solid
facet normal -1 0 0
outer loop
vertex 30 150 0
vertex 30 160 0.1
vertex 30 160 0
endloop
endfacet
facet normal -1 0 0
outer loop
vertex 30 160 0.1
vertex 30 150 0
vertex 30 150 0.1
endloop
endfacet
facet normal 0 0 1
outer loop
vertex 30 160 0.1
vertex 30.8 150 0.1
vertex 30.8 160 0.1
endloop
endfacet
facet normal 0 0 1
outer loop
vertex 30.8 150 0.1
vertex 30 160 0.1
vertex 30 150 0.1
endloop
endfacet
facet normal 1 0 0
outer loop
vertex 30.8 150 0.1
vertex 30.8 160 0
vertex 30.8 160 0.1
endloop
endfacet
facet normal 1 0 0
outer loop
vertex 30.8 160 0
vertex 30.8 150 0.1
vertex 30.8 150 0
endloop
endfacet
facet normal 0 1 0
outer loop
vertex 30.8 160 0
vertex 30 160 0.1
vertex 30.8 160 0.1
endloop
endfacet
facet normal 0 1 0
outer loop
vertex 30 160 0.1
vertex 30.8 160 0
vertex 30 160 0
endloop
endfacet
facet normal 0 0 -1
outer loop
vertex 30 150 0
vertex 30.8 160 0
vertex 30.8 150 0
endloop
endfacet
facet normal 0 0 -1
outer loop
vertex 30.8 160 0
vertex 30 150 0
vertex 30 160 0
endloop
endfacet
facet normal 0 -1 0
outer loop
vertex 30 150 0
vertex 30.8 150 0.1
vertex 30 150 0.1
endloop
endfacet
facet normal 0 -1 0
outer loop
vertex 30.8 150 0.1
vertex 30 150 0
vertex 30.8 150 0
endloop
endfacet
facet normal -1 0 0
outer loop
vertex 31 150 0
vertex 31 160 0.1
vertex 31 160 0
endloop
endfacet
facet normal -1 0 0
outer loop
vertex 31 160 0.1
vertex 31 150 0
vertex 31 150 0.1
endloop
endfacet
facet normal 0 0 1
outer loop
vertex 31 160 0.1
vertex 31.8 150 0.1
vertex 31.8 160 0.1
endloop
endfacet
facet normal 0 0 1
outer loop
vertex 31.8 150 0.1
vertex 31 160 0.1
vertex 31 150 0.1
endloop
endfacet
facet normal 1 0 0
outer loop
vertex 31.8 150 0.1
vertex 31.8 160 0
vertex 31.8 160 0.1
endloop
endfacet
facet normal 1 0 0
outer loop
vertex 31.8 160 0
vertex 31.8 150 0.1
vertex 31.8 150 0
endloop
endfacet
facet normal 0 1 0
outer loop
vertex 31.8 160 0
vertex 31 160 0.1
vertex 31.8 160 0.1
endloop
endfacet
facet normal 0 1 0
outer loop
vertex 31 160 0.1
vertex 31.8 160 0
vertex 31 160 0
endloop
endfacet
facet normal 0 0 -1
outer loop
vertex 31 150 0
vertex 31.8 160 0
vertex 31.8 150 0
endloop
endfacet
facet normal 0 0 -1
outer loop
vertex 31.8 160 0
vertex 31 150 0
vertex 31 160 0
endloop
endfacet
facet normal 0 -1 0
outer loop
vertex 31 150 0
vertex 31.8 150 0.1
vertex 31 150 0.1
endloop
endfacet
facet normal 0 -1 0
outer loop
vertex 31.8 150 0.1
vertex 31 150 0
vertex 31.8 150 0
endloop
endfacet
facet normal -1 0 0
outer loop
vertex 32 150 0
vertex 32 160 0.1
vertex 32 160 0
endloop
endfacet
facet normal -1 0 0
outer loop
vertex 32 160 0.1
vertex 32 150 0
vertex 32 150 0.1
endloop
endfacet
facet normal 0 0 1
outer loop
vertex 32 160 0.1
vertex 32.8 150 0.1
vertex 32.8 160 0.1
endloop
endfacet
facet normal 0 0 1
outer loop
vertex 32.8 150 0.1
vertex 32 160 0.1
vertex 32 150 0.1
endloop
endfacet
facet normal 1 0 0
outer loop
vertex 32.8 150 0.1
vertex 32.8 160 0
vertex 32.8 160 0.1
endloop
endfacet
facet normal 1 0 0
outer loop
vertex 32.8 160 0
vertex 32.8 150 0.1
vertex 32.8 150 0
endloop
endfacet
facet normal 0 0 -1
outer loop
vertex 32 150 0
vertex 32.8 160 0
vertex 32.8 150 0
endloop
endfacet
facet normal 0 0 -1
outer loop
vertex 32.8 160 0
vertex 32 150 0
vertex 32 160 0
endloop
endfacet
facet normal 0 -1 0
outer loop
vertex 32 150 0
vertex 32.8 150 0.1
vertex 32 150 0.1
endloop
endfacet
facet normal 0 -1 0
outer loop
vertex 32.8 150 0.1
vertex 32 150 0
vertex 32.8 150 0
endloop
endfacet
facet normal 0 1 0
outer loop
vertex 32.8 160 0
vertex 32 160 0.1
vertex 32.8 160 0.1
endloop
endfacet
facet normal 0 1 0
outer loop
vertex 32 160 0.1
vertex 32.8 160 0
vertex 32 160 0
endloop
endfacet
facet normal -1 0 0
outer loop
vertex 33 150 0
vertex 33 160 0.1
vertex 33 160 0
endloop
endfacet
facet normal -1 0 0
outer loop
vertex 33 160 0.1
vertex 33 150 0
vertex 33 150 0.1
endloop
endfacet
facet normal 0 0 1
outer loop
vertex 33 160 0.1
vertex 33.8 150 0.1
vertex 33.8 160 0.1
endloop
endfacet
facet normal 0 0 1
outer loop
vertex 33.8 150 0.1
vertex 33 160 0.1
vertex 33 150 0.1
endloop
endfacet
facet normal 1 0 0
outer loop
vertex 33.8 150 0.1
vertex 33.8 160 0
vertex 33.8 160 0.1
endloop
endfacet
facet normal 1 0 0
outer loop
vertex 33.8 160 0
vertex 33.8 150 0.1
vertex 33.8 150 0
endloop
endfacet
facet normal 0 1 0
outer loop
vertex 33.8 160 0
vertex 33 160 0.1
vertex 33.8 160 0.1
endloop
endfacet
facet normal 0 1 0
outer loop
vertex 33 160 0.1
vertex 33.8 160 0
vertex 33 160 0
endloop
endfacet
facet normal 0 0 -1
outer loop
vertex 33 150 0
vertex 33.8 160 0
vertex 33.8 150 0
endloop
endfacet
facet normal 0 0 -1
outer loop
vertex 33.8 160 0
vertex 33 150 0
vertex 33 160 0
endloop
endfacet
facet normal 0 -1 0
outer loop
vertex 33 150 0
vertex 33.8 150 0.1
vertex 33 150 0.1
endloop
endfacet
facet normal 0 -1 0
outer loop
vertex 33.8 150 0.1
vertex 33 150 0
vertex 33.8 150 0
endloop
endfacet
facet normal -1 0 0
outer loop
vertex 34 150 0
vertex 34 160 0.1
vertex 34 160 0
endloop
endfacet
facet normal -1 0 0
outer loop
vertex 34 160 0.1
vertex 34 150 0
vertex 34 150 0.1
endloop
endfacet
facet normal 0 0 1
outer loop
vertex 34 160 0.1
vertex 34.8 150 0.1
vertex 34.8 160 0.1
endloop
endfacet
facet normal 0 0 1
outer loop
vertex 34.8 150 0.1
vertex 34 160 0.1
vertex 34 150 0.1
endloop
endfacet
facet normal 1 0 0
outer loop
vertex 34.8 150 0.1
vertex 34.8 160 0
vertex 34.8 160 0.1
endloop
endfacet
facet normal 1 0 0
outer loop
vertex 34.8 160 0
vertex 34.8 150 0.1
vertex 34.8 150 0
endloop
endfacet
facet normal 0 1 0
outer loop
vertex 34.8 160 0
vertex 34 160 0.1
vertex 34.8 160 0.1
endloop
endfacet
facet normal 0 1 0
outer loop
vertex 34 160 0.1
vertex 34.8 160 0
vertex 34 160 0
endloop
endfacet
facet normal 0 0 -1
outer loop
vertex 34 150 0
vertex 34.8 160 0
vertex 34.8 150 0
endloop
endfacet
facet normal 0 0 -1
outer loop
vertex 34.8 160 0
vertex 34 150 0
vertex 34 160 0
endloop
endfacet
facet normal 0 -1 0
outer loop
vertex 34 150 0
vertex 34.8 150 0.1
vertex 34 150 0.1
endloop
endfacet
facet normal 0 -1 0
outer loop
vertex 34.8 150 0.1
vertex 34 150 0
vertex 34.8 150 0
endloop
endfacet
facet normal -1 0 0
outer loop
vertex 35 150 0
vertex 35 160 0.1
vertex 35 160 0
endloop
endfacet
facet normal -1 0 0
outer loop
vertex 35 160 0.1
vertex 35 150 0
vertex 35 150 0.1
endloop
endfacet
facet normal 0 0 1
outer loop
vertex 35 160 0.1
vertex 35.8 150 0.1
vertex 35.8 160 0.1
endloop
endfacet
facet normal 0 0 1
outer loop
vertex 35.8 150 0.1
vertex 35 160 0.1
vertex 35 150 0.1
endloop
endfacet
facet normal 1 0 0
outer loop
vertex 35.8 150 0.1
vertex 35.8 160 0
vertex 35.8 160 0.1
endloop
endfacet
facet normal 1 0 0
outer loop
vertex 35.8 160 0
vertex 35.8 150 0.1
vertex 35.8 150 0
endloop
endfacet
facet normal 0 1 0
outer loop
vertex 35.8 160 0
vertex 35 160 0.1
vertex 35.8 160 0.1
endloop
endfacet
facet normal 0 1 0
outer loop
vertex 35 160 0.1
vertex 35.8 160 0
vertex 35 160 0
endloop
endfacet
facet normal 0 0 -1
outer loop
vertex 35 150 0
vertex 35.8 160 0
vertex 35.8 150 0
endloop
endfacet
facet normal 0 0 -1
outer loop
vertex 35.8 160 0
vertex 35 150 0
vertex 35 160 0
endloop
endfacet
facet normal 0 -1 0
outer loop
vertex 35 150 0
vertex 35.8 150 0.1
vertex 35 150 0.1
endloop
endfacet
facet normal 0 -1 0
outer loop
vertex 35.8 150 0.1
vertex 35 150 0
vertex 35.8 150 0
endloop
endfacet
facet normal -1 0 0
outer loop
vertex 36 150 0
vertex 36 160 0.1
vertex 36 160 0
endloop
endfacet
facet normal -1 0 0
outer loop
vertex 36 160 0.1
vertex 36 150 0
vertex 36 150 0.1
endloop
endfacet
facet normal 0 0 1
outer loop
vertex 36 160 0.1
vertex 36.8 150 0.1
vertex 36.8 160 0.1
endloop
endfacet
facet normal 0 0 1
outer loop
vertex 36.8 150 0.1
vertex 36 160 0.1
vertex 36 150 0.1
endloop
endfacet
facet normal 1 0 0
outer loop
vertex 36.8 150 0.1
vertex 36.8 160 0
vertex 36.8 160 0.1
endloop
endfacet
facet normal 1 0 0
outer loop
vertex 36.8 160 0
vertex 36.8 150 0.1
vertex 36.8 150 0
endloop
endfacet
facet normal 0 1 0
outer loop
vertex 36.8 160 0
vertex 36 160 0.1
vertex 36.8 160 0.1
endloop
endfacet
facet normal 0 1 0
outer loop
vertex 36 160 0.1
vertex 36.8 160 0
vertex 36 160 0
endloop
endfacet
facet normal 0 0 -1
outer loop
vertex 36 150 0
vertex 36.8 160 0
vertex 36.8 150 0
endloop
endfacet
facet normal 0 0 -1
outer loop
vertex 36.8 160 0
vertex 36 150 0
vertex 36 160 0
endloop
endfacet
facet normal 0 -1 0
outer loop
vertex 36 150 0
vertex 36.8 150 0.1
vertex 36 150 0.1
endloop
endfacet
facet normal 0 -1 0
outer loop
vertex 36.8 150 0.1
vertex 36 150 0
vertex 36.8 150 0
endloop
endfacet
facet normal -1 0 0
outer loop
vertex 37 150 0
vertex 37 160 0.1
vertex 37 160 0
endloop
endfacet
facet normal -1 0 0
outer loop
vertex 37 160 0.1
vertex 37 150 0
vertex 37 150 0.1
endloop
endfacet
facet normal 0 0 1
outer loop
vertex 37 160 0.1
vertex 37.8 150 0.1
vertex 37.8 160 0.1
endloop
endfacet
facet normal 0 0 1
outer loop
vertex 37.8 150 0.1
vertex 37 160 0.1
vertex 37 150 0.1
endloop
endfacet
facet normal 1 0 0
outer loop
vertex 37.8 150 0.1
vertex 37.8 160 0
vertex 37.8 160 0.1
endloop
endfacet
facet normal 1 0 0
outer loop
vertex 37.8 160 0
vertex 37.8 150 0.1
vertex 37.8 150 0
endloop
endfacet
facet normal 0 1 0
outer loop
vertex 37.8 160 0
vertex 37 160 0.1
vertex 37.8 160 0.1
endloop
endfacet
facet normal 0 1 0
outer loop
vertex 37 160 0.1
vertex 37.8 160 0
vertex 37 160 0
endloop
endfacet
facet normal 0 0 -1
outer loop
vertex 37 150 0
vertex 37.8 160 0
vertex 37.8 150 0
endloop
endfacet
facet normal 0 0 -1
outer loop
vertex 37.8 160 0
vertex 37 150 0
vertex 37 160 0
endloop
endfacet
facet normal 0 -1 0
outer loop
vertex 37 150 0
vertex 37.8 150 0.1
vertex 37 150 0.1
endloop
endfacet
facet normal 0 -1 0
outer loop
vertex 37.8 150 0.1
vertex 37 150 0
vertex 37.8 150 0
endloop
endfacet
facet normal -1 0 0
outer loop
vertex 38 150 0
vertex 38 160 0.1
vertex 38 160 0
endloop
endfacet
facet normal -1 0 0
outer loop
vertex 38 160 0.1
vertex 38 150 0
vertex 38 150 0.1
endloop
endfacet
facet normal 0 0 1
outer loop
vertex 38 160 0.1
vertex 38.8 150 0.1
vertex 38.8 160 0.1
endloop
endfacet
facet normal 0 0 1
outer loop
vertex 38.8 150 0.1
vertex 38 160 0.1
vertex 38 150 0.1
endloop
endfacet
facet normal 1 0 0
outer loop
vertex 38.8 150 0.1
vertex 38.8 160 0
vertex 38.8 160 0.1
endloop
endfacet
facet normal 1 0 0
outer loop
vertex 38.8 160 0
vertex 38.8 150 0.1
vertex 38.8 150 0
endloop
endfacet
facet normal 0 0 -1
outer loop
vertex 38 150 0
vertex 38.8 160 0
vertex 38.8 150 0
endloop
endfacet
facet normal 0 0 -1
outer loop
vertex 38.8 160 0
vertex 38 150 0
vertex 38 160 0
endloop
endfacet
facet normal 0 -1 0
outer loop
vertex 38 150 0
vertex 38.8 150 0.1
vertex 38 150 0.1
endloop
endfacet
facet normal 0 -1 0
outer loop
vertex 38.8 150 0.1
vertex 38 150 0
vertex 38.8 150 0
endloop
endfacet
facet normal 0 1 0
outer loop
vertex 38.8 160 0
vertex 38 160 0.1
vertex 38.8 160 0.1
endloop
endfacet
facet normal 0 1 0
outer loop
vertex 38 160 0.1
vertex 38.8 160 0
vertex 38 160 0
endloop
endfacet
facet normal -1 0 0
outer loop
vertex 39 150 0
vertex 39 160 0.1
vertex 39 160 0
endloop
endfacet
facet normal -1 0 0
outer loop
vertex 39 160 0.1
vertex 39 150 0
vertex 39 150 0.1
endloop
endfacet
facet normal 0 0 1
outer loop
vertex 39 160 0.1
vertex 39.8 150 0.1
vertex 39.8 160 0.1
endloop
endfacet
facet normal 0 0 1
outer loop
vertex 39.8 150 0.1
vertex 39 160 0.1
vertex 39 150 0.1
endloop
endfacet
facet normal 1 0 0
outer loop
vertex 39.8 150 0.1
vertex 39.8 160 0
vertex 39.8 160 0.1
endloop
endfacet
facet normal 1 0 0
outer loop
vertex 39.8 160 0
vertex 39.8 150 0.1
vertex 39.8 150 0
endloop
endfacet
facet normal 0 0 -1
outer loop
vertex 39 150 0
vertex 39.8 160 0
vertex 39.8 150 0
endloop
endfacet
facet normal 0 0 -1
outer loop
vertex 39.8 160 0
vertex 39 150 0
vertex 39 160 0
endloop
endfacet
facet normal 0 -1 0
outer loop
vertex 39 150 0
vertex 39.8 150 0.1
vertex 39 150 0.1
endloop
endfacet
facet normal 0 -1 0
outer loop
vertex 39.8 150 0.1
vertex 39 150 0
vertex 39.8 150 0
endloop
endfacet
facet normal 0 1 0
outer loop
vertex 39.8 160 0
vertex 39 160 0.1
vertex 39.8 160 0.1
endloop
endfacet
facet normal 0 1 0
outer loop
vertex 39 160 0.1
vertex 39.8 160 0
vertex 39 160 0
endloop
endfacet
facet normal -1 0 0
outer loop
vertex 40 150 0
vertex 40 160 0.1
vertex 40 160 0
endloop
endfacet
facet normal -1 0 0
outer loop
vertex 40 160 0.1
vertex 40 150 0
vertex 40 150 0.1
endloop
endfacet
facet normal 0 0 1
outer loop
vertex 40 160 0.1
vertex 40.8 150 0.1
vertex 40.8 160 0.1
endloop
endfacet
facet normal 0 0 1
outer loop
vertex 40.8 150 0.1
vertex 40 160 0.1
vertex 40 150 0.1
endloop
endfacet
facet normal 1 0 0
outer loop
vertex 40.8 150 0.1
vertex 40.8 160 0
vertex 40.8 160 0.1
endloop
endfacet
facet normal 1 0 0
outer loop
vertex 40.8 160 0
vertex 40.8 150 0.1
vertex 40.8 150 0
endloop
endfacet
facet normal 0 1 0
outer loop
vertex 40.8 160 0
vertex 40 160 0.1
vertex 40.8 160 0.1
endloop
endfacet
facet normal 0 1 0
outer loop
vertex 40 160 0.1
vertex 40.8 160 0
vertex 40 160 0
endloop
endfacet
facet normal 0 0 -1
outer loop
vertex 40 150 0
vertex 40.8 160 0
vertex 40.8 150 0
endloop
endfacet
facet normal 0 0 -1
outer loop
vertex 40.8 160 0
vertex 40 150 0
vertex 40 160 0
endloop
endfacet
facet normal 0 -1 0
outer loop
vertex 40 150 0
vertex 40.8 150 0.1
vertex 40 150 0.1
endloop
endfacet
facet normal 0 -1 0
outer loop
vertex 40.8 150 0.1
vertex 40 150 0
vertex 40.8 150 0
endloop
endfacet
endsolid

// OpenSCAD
translate([10+20,10+140,0])
        for (i = [0 : 10]){
            translate([i,0,0])
                cube(size = [0.8,10,0.1]);
    }
